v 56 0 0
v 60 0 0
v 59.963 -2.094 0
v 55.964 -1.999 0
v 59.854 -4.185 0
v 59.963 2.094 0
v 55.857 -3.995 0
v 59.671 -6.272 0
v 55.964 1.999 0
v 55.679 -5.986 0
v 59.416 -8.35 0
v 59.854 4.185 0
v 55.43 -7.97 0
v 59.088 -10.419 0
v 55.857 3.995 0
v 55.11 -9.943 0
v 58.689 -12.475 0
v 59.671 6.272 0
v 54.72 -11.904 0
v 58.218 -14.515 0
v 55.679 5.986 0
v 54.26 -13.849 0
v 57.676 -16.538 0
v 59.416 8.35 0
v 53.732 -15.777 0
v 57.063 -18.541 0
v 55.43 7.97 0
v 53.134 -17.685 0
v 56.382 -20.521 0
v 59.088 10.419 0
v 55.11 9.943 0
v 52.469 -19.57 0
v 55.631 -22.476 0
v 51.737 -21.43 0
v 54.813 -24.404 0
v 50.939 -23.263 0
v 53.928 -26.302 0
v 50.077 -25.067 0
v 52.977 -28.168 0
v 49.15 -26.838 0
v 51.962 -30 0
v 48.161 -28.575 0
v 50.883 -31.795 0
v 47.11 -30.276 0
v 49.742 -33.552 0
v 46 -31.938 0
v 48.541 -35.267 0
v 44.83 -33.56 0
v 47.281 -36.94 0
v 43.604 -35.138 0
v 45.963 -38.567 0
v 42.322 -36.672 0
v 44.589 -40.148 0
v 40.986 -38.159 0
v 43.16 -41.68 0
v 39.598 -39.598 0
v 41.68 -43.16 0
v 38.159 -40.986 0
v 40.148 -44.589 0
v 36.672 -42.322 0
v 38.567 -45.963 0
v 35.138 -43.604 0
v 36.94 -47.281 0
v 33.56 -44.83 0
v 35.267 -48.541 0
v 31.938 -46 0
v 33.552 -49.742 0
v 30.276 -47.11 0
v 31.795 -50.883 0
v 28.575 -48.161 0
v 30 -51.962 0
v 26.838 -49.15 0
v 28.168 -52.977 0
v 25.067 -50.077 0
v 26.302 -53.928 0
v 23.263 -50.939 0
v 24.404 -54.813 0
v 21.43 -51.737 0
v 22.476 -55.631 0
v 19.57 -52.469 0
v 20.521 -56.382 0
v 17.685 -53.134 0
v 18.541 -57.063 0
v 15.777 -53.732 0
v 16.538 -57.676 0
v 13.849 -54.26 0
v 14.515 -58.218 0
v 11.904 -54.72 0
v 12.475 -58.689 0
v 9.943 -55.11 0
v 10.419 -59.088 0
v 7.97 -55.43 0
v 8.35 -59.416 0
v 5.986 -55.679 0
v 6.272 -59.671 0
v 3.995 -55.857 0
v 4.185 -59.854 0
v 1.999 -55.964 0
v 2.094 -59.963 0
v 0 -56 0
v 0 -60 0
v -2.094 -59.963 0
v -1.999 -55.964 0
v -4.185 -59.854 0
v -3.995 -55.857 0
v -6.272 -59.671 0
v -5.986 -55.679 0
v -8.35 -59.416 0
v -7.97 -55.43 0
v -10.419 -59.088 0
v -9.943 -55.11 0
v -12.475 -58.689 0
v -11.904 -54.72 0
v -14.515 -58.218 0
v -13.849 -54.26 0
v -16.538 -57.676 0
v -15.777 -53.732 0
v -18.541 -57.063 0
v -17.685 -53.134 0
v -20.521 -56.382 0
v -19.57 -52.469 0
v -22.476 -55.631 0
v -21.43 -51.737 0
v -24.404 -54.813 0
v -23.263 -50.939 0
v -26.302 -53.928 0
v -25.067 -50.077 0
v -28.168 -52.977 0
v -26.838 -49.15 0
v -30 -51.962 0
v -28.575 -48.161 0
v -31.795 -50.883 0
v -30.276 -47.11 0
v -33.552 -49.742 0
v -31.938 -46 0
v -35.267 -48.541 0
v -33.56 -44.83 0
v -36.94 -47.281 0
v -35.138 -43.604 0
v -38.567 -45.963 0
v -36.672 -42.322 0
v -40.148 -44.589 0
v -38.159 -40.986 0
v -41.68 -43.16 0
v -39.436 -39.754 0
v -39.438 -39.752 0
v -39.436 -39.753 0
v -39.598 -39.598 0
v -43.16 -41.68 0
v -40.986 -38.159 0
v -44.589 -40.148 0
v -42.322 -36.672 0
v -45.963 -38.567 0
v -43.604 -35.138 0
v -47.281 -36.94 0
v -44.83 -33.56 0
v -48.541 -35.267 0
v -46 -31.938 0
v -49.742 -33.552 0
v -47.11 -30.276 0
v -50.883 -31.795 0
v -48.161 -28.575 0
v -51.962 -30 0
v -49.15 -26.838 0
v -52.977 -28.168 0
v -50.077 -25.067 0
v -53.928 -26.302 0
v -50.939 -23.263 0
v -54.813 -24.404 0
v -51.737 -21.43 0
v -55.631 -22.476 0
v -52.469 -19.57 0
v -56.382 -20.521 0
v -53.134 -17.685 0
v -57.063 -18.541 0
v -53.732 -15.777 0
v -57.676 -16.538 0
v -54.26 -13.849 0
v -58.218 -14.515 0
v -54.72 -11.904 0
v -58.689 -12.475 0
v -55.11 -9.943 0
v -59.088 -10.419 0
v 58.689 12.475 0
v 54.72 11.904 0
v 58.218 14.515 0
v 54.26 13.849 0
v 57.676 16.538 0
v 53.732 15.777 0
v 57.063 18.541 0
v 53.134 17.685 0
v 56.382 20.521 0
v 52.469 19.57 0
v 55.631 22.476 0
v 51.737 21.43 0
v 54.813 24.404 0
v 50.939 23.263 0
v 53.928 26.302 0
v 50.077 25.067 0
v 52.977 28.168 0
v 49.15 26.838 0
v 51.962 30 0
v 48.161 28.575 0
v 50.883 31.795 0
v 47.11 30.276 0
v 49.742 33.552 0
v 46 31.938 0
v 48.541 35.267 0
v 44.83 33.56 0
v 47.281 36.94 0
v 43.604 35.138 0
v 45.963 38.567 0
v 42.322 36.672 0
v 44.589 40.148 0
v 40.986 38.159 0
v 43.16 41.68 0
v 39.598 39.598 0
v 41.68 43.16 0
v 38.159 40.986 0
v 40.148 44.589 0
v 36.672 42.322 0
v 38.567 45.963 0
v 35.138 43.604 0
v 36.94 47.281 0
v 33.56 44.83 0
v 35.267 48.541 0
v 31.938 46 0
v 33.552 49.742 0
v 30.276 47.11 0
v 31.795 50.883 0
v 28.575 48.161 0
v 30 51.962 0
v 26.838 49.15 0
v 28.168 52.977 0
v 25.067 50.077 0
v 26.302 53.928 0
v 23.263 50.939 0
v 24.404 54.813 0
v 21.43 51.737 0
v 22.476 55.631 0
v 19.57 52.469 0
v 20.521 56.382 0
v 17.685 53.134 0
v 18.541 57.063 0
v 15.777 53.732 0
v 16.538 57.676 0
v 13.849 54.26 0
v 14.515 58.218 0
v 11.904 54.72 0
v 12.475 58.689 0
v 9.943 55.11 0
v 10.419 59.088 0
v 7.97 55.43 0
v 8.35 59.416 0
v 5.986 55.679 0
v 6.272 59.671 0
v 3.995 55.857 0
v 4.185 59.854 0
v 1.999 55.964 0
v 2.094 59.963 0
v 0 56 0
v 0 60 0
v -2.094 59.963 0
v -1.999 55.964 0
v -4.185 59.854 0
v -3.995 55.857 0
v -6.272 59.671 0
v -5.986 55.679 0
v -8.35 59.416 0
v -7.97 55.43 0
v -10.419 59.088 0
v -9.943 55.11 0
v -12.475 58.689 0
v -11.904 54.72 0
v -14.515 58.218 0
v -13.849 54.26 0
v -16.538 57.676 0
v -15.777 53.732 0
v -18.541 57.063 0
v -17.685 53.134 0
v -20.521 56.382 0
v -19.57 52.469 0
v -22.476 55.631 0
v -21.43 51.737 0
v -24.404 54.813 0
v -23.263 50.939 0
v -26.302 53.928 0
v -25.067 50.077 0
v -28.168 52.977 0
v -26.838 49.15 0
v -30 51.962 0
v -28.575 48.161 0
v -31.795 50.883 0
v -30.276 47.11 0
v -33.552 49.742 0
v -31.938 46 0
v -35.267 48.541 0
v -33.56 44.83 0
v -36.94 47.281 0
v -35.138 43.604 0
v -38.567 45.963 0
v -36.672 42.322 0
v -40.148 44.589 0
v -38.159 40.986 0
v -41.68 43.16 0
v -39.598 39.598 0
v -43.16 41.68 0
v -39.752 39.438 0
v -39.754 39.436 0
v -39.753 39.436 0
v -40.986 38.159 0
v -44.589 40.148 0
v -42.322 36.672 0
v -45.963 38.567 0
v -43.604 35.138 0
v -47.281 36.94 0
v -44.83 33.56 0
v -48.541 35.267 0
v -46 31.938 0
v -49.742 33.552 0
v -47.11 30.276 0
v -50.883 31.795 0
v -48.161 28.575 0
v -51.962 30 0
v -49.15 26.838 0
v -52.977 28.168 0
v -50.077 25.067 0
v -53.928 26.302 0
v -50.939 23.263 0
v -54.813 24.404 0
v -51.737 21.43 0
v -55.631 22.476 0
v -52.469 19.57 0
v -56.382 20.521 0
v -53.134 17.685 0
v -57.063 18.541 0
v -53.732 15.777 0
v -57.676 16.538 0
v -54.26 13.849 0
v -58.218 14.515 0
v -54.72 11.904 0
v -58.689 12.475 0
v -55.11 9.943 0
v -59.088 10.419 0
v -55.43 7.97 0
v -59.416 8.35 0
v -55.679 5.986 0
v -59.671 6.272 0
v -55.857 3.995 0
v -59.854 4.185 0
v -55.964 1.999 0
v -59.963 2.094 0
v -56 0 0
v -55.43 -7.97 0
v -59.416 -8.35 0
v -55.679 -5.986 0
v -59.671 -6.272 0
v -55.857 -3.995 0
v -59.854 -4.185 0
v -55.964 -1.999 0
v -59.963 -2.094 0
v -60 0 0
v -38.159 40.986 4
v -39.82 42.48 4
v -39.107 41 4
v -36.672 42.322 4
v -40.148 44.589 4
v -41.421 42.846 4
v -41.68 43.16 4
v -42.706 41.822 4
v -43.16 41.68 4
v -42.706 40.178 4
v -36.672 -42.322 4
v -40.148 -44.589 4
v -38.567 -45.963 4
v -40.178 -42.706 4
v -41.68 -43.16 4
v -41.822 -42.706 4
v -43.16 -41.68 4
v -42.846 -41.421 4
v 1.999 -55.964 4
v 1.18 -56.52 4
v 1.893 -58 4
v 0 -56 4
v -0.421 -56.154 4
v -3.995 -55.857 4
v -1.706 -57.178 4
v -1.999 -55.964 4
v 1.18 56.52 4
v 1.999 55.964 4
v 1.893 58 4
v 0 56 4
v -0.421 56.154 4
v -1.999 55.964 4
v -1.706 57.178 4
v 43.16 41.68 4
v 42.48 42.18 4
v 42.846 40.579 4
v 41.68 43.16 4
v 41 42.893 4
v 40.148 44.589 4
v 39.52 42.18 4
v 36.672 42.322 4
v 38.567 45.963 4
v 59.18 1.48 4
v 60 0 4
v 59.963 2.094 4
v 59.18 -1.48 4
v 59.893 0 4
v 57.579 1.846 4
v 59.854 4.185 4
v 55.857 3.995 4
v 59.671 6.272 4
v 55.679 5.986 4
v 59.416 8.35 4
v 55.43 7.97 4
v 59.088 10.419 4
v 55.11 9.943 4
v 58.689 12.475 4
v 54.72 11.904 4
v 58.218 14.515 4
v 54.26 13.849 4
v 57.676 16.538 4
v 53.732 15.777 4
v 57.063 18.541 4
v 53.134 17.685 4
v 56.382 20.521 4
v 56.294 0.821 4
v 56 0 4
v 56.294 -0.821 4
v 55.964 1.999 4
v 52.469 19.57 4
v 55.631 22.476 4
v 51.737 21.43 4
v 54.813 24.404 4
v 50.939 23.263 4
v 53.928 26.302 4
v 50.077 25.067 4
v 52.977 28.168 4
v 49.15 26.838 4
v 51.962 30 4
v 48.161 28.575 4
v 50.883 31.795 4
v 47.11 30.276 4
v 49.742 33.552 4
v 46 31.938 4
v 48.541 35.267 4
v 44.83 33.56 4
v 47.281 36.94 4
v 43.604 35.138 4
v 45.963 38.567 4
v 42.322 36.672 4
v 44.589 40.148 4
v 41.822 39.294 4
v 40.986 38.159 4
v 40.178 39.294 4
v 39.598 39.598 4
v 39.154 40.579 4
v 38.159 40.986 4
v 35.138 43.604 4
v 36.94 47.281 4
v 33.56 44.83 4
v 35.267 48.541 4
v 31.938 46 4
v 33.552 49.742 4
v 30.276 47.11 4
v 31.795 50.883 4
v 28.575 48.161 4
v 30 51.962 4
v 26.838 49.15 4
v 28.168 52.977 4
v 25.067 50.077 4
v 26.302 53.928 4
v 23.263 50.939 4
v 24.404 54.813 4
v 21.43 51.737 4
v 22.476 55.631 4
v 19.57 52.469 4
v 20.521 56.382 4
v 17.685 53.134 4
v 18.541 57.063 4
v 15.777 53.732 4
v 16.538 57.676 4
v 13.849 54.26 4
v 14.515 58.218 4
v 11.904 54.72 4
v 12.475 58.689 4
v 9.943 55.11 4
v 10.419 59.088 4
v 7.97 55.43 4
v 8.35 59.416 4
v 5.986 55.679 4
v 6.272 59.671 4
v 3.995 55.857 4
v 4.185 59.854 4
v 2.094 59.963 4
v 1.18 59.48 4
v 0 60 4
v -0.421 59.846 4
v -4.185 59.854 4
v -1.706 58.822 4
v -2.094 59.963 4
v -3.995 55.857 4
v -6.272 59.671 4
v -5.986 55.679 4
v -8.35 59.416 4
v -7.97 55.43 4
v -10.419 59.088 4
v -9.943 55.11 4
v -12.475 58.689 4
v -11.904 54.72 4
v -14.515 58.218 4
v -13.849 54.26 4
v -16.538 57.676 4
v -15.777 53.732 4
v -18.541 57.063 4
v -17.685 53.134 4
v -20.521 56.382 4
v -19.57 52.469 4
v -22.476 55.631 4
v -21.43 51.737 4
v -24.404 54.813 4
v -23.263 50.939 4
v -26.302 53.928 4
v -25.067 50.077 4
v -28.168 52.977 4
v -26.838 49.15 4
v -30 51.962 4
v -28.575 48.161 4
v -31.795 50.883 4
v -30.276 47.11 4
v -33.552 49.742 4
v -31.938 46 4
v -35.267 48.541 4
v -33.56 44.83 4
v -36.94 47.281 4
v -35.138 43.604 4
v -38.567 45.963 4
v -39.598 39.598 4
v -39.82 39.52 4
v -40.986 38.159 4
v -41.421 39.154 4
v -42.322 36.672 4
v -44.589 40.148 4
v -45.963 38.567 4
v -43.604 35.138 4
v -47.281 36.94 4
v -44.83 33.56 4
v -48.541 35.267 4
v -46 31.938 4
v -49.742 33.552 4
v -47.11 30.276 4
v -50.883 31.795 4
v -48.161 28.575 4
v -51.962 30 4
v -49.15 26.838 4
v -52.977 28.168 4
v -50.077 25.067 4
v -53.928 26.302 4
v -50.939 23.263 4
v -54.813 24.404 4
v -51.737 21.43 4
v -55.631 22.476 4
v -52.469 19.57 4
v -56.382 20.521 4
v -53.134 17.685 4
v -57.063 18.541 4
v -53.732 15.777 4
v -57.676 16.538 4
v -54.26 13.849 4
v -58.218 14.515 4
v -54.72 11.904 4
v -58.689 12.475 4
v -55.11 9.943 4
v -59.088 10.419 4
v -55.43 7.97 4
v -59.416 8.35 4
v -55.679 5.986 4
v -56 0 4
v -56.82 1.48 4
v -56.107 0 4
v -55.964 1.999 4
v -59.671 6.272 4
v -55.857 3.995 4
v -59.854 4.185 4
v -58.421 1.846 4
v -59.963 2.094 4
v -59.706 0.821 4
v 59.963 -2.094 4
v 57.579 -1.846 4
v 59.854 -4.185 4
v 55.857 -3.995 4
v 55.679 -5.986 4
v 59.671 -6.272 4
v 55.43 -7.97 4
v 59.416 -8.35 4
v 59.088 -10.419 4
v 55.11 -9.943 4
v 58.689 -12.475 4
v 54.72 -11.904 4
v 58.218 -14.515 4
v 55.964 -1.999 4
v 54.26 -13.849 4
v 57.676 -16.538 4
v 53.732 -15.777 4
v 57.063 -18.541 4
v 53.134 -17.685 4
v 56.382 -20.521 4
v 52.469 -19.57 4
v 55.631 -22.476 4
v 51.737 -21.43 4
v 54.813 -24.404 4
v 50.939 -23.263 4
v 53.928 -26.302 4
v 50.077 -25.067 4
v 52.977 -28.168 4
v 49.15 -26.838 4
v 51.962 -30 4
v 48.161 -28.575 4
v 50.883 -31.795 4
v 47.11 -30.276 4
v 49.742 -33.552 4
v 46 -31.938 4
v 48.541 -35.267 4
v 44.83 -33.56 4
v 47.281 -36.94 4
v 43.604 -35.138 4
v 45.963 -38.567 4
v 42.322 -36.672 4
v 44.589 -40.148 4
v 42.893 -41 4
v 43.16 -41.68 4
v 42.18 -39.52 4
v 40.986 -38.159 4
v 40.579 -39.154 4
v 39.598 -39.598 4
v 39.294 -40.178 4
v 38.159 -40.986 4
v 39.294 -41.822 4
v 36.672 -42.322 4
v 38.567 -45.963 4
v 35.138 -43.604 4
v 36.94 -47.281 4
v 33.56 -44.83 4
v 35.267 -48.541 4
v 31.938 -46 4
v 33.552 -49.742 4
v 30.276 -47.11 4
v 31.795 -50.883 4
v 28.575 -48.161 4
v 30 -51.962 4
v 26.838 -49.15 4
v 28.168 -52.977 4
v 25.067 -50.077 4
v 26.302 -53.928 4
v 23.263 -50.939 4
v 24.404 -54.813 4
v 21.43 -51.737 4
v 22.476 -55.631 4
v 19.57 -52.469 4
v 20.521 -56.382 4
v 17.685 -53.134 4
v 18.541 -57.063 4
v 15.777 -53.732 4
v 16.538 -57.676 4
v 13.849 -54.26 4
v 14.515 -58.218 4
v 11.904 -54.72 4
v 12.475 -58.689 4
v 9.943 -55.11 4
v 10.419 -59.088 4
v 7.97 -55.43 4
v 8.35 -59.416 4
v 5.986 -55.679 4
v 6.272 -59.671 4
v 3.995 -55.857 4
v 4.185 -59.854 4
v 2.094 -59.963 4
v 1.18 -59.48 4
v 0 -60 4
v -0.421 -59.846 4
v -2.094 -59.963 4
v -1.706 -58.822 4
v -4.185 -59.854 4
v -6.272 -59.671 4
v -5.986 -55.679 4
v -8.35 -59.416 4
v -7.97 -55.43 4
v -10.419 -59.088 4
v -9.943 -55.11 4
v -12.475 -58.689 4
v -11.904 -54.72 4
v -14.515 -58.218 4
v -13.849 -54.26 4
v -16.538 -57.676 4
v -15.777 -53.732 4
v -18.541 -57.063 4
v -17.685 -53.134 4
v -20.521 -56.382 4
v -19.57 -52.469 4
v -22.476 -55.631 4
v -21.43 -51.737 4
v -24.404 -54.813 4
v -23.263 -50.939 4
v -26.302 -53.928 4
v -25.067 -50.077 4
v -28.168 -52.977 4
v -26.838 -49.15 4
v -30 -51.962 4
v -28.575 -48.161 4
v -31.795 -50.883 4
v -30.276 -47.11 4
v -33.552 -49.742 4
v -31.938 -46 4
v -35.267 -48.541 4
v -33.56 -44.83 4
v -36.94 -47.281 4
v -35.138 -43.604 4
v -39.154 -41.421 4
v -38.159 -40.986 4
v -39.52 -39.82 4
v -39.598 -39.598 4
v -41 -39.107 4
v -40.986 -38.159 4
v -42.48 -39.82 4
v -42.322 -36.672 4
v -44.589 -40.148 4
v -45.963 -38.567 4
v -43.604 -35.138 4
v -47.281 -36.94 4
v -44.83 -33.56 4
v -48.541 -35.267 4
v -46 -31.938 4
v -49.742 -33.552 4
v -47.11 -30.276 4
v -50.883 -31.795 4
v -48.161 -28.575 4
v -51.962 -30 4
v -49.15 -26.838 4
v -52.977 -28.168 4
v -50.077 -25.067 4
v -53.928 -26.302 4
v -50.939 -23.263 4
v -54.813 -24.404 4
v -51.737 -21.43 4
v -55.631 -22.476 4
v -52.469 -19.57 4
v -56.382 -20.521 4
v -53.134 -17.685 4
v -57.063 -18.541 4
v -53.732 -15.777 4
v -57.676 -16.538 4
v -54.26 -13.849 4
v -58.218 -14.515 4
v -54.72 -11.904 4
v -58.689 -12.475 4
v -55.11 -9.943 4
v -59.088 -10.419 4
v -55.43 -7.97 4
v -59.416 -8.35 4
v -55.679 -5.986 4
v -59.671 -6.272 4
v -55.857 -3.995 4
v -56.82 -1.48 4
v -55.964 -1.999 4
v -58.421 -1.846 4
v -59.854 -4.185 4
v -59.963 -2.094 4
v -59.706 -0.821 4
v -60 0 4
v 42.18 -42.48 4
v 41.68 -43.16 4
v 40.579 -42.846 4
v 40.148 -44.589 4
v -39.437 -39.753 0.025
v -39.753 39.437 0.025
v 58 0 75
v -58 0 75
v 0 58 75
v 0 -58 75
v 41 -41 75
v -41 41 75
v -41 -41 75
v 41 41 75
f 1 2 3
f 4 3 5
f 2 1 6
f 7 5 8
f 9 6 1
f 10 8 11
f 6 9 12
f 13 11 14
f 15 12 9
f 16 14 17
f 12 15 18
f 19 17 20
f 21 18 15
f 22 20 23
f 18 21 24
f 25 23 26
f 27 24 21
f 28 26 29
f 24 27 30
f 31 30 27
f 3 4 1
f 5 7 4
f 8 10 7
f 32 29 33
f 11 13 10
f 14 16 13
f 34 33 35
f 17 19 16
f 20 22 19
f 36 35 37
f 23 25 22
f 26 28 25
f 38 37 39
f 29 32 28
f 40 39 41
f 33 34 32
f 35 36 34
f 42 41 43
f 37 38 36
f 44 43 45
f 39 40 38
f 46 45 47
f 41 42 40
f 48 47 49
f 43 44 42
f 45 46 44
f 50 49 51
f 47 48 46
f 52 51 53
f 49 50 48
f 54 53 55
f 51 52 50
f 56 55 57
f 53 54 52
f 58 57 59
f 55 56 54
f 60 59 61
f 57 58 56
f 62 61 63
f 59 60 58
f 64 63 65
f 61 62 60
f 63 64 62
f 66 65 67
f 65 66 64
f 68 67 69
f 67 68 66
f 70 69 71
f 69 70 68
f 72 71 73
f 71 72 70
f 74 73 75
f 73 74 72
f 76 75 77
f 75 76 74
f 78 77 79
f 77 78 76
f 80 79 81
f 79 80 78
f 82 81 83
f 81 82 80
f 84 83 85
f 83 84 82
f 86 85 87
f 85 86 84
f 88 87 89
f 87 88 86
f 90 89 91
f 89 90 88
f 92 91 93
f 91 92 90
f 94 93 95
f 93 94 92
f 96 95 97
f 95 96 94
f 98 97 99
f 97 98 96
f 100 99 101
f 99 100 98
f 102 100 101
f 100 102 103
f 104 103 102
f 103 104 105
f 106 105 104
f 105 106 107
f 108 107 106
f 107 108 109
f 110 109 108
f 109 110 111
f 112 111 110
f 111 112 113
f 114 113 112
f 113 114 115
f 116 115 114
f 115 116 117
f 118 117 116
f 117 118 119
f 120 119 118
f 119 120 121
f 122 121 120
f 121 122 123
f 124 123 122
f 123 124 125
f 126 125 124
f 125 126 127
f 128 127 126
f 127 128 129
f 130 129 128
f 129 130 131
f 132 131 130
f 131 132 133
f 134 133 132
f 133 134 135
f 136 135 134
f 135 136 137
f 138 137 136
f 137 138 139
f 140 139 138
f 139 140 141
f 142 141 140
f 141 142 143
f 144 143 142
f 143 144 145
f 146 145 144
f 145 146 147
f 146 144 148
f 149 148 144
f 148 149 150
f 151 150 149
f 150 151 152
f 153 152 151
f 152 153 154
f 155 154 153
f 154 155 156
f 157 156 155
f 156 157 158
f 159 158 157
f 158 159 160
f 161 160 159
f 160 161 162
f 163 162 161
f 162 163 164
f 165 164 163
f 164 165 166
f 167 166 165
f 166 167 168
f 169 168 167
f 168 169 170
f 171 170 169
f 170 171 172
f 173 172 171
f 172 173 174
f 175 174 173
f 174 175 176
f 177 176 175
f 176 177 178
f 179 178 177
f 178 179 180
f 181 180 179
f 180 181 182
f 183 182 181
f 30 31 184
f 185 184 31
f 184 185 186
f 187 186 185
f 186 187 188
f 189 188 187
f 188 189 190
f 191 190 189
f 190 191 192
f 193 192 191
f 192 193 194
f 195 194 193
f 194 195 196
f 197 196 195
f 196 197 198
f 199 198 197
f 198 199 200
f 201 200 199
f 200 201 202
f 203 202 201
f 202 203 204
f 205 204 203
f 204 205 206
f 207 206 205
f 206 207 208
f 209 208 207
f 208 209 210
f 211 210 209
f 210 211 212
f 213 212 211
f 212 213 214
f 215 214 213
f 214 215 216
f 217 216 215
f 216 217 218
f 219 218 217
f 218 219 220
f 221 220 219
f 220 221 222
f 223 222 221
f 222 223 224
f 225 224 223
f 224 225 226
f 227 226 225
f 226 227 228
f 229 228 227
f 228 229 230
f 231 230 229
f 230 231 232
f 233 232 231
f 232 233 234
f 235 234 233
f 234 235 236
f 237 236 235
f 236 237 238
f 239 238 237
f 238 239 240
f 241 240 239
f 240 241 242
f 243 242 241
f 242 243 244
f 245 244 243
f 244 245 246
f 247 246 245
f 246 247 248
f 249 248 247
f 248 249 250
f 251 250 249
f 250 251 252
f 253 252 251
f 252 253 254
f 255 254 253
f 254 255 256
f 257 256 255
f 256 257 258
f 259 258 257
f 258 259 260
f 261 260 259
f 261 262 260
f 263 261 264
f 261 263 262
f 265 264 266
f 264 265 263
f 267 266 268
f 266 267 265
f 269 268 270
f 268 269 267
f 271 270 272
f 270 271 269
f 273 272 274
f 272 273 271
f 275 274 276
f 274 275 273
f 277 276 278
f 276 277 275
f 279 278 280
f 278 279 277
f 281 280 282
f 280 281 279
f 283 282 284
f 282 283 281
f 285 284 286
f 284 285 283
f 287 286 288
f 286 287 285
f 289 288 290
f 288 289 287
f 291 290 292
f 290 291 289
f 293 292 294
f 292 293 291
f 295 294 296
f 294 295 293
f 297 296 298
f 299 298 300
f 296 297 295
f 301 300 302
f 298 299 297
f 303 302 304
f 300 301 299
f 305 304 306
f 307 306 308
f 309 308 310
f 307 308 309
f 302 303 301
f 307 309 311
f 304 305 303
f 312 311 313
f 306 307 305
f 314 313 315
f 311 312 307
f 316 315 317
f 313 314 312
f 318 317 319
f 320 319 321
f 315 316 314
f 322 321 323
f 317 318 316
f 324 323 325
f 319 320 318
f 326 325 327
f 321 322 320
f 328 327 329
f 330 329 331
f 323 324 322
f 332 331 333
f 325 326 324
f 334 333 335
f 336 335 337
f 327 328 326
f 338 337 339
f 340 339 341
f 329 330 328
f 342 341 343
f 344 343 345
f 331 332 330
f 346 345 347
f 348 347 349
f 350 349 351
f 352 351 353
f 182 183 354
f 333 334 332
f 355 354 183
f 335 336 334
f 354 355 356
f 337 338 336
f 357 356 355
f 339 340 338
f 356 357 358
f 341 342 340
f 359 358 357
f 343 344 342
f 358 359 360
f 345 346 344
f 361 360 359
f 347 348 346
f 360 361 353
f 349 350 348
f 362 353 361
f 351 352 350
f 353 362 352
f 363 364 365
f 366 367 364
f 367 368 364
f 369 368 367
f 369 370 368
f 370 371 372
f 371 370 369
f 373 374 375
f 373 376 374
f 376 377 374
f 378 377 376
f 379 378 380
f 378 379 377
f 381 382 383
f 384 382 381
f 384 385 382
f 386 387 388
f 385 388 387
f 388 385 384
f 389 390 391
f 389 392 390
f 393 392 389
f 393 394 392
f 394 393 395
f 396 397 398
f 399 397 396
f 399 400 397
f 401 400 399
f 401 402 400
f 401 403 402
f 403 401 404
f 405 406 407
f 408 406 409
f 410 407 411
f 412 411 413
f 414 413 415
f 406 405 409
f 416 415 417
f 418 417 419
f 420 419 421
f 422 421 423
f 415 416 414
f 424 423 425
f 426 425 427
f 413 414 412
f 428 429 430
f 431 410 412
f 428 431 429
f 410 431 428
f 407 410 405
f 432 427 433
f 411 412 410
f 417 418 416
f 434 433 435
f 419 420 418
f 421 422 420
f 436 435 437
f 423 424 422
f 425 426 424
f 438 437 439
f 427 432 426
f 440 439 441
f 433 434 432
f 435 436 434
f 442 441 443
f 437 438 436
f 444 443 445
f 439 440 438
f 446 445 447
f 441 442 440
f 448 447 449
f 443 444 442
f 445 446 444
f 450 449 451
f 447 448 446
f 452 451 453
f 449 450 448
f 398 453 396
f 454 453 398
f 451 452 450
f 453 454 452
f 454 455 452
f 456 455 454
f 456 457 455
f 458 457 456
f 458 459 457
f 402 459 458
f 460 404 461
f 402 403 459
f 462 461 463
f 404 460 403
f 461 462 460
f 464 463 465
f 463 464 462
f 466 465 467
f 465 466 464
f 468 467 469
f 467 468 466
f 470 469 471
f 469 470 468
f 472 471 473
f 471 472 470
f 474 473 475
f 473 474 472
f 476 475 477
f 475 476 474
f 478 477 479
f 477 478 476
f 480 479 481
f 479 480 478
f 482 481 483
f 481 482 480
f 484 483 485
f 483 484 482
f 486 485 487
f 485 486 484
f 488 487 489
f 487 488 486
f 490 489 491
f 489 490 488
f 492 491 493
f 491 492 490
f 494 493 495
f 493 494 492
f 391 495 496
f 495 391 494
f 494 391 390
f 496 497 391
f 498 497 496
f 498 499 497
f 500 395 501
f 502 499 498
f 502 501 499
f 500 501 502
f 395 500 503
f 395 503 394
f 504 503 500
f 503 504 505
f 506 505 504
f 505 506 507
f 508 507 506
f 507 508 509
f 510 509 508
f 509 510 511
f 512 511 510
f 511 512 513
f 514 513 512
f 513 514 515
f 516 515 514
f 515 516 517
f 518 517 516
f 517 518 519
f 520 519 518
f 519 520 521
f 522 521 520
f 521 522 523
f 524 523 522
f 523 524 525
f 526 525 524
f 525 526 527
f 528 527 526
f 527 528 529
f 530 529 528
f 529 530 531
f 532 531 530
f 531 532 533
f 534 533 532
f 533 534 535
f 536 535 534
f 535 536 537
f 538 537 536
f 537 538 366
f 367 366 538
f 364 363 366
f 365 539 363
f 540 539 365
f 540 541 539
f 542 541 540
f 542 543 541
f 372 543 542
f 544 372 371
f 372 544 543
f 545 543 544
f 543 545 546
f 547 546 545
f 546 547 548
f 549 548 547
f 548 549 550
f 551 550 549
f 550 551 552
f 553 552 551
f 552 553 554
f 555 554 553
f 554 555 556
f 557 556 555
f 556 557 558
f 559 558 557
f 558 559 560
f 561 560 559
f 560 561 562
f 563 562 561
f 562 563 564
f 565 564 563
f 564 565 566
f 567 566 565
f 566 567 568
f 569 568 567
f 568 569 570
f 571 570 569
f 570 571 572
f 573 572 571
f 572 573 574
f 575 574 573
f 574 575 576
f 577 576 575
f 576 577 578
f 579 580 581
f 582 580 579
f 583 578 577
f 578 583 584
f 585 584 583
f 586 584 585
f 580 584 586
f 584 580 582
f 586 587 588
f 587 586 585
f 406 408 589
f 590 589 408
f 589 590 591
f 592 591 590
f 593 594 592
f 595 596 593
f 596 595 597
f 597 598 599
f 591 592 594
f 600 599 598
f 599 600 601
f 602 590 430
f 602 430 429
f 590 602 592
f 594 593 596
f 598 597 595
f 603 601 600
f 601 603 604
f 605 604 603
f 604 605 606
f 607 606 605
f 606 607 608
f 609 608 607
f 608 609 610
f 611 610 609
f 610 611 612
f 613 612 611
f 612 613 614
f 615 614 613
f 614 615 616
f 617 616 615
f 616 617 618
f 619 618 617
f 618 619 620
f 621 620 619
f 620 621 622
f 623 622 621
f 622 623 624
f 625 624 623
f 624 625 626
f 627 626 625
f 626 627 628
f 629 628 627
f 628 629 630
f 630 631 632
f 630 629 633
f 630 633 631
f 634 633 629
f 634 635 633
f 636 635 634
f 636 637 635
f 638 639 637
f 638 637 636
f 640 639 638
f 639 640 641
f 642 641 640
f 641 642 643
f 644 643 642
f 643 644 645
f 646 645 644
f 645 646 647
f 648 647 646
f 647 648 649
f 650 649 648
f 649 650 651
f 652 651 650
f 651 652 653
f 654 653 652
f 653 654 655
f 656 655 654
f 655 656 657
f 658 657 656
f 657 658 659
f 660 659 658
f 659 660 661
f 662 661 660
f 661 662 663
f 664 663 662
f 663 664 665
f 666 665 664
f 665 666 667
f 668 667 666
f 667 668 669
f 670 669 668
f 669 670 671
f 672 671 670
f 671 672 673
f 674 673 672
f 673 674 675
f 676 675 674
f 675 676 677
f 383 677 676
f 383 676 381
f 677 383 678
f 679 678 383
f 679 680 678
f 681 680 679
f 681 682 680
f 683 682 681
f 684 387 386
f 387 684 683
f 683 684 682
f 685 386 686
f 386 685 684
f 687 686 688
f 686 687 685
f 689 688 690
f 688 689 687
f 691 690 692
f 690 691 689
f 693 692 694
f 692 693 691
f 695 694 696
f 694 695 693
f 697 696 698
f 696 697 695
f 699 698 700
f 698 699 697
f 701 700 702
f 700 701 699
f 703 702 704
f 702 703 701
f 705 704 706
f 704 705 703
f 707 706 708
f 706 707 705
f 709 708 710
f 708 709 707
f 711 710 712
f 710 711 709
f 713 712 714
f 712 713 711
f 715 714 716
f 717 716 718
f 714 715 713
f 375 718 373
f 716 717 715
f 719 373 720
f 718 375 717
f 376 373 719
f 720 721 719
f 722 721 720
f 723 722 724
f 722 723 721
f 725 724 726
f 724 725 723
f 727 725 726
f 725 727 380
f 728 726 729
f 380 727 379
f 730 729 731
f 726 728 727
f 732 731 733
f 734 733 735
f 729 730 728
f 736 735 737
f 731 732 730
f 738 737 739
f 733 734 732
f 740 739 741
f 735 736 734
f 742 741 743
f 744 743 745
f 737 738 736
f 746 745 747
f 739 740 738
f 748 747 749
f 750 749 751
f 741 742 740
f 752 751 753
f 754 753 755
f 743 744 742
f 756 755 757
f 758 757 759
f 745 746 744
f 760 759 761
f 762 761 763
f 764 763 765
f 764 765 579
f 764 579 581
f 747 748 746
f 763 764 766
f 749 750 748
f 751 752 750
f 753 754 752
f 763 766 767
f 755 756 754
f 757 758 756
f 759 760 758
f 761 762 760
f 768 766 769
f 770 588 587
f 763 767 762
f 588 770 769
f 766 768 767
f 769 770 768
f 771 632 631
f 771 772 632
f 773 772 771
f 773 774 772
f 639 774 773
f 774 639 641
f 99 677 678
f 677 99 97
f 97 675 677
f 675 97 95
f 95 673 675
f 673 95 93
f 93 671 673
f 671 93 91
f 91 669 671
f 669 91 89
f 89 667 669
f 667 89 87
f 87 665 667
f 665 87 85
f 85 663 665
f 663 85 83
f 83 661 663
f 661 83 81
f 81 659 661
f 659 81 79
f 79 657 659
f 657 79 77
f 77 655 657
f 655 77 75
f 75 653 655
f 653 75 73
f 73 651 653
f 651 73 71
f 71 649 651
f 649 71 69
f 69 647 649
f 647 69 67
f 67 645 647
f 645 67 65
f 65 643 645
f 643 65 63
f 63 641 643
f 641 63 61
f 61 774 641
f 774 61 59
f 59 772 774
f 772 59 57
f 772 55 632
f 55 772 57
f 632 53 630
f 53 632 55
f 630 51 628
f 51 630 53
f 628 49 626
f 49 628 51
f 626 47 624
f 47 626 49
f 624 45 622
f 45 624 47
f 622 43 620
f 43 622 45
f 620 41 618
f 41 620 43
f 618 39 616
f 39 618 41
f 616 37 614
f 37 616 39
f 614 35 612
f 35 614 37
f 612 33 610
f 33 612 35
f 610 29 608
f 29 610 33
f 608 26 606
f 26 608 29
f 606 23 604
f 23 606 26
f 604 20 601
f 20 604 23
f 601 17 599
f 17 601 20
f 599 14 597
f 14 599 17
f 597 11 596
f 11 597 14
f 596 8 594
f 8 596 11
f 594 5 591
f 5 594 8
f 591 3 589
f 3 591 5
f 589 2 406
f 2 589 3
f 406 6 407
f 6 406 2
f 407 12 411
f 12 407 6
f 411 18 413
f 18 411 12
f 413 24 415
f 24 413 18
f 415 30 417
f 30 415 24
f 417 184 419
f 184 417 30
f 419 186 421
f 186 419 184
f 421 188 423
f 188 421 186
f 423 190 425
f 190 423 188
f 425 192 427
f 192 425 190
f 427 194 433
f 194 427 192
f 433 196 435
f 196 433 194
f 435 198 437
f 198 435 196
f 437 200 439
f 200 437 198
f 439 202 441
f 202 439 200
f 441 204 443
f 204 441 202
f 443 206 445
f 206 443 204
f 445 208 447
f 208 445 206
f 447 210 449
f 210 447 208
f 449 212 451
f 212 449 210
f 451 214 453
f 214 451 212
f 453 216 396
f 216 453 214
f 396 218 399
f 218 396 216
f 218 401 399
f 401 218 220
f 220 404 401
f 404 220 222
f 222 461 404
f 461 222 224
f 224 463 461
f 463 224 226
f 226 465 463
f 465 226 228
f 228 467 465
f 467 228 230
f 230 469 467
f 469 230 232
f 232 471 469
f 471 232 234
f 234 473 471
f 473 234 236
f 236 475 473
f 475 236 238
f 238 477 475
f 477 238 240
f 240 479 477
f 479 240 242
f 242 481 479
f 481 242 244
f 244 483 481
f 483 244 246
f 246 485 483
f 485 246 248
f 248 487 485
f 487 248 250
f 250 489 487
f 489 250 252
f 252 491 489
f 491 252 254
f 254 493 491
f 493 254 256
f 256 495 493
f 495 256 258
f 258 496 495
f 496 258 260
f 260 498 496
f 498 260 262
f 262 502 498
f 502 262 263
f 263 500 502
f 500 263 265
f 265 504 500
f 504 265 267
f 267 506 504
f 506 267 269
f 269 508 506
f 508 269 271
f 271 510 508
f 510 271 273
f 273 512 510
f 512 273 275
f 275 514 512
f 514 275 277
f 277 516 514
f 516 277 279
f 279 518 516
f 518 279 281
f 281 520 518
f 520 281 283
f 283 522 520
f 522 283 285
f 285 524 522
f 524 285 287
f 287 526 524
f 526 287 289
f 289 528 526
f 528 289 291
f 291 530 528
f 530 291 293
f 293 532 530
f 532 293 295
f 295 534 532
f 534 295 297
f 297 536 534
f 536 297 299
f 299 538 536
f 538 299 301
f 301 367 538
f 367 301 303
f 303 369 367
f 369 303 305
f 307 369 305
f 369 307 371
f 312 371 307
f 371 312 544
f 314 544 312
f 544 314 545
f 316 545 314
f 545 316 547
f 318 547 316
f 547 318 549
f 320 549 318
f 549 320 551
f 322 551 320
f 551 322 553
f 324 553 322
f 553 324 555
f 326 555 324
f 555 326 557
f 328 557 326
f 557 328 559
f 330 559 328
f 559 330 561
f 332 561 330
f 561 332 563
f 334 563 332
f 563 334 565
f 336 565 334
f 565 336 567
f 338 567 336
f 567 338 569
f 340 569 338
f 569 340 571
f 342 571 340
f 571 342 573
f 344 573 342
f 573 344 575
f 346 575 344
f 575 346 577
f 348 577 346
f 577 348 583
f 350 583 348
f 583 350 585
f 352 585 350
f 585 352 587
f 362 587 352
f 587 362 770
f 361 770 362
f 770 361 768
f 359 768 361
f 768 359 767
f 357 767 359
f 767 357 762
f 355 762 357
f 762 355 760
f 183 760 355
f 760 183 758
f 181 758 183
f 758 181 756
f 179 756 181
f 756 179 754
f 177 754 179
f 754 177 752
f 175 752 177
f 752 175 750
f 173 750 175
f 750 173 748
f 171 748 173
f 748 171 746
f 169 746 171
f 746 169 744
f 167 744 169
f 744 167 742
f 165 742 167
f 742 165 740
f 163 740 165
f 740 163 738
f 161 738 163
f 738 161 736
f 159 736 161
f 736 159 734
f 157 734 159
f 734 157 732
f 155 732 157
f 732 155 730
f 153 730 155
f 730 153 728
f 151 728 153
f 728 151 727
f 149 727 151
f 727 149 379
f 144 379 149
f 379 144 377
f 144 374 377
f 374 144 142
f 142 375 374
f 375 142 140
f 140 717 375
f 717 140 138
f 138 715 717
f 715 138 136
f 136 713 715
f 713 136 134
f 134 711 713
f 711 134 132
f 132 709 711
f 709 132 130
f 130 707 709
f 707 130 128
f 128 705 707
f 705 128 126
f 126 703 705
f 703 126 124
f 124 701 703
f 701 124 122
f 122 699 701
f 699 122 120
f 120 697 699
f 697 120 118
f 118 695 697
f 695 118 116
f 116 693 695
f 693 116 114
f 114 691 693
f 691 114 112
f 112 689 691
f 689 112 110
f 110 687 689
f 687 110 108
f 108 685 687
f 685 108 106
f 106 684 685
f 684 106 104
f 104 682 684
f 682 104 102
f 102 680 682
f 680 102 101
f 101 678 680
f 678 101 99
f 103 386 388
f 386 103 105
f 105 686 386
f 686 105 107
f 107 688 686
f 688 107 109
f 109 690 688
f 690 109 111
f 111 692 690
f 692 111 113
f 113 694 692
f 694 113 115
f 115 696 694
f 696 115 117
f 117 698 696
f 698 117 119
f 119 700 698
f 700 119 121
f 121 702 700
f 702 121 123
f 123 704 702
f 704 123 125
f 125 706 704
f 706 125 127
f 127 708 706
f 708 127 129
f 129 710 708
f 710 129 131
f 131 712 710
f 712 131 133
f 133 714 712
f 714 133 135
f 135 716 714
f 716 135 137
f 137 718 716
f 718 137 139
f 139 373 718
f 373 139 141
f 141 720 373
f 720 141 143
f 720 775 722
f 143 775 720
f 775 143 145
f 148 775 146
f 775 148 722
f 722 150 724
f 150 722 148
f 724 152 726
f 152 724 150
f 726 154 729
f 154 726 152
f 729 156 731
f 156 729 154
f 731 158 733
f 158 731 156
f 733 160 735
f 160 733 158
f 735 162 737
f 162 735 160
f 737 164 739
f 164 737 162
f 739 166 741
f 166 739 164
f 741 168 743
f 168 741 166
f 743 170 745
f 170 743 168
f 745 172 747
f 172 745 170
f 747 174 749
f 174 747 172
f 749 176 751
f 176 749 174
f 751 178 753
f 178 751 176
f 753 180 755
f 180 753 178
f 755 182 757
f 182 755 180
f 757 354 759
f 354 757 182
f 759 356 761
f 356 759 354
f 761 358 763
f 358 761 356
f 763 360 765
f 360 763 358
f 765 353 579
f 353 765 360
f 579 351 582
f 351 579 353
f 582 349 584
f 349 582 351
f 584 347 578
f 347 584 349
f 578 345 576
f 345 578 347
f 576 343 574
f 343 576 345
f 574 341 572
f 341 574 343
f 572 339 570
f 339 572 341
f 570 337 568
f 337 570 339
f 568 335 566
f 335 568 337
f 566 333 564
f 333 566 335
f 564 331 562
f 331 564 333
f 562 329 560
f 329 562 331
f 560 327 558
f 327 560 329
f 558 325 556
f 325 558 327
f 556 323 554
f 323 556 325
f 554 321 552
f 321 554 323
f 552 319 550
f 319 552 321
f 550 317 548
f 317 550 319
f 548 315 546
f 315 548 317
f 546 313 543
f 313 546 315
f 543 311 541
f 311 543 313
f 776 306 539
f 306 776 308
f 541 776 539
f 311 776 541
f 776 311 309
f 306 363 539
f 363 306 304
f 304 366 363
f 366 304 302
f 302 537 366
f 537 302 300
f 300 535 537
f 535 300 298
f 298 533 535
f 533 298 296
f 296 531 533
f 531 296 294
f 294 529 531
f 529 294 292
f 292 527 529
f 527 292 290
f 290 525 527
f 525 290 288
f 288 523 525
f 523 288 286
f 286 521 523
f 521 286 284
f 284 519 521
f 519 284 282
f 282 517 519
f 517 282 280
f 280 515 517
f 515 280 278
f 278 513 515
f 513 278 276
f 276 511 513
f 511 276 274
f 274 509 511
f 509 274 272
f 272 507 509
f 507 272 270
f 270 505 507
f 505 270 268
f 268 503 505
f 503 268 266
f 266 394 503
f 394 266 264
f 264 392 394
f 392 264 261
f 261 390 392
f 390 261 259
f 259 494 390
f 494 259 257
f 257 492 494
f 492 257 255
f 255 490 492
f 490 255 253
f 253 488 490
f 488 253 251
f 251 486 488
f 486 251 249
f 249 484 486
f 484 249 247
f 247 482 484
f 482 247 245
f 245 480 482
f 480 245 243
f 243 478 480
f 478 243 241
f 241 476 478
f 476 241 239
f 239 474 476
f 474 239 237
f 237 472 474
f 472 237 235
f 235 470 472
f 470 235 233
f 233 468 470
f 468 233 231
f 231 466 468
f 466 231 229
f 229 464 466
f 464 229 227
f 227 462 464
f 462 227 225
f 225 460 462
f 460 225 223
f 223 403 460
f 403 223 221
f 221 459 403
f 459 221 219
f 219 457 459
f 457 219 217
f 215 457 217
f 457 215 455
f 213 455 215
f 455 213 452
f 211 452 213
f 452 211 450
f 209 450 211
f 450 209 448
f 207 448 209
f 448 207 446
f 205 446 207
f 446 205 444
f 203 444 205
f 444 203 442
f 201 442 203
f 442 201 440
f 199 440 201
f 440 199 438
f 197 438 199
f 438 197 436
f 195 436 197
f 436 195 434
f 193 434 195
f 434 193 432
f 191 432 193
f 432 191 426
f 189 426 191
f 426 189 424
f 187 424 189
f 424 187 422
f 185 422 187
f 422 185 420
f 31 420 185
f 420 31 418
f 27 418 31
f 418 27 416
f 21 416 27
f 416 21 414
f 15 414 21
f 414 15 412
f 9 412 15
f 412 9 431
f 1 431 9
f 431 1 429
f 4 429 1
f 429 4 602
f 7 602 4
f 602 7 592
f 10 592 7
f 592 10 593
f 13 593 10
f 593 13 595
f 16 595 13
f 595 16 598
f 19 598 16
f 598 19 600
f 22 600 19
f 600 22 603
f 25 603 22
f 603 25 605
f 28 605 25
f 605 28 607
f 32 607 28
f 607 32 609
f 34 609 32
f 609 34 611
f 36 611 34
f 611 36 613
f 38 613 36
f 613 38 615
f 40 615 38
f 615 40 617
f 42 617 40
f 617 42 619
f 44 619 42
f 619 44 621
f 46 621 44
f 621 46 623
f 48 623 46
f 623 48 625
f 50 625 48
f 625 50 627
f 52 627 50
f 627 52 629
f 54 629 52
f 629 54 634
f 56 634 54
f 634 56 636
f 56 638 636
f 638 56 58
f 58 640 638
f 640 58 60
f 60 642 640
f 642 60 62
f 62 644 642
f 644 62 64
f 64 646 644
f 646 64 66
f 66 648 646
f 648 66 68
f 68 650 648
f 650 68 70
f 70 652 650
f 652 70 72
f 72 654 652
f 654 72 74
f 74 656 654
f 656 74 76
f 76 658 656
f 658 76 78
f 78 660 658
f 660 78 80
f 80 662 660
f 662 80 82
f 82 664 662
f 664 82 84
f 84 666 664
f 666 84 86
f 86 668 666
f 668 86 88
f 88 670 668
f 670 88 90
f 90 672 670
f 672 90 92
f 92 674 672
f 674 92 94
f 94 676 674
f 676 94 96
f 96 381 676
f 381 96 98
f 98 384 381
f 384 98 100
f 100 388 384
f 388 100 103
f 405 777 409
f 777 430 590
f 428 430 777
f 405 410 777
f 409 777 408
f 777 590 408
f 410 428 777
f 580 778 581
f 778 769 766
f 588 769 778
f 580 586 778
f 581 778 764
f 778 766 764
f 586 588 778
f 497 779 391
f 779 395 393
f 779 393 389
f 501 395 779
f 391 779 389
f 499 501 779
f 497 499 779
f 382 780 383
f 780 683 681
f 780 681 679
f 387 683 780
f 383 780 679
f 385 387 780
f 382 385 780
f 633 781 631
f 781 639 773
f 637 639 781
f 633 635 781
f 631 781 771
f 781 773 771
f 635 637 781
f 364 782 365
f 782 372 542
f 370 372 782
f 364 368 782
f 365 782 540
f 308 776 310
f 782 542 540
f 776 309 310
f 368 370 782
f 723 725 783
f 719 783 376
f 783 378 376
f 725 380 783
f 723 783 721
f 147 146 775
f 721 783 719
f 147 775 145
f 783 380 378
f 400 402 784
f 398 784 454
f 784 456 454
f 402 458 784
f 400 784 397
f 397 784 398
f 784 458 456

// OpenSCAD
headwidth=56;
bandthickness=4;
bandheight=4;
crownheight=75;

linear_extrude(bandheight){
difference(){
circle(headwidth+bandthickness, $fa = 2);
circle(headwidth, $fa = 2);
};
};


translate([headwidth+bandthickness/2,0,0])
cylinder(h=crownheight, r1=2, r2=0, center=false);

translate([-headwidth-bandthickness/2,0,0])
cylinder(h=crownheight, r1=2, r2=0, center=false);

translate([0,headwidth+bandthickness/2,0])
cylinder(h=crownheight, r1=2, r2=0, center=false);

translate([0,-headwidth-bandthickness/2,0])
cylinder(h=crownheight, r1=2, r2=0, center=false);

translate([headwidth-15,-headwidth+15,0])
cylinder(h=crownheight, r1=2, r2=0, center=false);


translate([headwidth-56*2+15,-headwidth+56*2-15,0])
cylinder(h=crownheight, r1=2, r2=0, center=false);

rotate([0,0,90])translate([headwidth-56*2+15,-headwidth+56*2-15,0])
cylinder(h=crownheight, r1=2, r2=0, center=false);

rotate([0,0,90])translate([headwidth-15,-headwidth+15,0])
cylinder(h=crownheight, r1=2, r2=0, center=false);
